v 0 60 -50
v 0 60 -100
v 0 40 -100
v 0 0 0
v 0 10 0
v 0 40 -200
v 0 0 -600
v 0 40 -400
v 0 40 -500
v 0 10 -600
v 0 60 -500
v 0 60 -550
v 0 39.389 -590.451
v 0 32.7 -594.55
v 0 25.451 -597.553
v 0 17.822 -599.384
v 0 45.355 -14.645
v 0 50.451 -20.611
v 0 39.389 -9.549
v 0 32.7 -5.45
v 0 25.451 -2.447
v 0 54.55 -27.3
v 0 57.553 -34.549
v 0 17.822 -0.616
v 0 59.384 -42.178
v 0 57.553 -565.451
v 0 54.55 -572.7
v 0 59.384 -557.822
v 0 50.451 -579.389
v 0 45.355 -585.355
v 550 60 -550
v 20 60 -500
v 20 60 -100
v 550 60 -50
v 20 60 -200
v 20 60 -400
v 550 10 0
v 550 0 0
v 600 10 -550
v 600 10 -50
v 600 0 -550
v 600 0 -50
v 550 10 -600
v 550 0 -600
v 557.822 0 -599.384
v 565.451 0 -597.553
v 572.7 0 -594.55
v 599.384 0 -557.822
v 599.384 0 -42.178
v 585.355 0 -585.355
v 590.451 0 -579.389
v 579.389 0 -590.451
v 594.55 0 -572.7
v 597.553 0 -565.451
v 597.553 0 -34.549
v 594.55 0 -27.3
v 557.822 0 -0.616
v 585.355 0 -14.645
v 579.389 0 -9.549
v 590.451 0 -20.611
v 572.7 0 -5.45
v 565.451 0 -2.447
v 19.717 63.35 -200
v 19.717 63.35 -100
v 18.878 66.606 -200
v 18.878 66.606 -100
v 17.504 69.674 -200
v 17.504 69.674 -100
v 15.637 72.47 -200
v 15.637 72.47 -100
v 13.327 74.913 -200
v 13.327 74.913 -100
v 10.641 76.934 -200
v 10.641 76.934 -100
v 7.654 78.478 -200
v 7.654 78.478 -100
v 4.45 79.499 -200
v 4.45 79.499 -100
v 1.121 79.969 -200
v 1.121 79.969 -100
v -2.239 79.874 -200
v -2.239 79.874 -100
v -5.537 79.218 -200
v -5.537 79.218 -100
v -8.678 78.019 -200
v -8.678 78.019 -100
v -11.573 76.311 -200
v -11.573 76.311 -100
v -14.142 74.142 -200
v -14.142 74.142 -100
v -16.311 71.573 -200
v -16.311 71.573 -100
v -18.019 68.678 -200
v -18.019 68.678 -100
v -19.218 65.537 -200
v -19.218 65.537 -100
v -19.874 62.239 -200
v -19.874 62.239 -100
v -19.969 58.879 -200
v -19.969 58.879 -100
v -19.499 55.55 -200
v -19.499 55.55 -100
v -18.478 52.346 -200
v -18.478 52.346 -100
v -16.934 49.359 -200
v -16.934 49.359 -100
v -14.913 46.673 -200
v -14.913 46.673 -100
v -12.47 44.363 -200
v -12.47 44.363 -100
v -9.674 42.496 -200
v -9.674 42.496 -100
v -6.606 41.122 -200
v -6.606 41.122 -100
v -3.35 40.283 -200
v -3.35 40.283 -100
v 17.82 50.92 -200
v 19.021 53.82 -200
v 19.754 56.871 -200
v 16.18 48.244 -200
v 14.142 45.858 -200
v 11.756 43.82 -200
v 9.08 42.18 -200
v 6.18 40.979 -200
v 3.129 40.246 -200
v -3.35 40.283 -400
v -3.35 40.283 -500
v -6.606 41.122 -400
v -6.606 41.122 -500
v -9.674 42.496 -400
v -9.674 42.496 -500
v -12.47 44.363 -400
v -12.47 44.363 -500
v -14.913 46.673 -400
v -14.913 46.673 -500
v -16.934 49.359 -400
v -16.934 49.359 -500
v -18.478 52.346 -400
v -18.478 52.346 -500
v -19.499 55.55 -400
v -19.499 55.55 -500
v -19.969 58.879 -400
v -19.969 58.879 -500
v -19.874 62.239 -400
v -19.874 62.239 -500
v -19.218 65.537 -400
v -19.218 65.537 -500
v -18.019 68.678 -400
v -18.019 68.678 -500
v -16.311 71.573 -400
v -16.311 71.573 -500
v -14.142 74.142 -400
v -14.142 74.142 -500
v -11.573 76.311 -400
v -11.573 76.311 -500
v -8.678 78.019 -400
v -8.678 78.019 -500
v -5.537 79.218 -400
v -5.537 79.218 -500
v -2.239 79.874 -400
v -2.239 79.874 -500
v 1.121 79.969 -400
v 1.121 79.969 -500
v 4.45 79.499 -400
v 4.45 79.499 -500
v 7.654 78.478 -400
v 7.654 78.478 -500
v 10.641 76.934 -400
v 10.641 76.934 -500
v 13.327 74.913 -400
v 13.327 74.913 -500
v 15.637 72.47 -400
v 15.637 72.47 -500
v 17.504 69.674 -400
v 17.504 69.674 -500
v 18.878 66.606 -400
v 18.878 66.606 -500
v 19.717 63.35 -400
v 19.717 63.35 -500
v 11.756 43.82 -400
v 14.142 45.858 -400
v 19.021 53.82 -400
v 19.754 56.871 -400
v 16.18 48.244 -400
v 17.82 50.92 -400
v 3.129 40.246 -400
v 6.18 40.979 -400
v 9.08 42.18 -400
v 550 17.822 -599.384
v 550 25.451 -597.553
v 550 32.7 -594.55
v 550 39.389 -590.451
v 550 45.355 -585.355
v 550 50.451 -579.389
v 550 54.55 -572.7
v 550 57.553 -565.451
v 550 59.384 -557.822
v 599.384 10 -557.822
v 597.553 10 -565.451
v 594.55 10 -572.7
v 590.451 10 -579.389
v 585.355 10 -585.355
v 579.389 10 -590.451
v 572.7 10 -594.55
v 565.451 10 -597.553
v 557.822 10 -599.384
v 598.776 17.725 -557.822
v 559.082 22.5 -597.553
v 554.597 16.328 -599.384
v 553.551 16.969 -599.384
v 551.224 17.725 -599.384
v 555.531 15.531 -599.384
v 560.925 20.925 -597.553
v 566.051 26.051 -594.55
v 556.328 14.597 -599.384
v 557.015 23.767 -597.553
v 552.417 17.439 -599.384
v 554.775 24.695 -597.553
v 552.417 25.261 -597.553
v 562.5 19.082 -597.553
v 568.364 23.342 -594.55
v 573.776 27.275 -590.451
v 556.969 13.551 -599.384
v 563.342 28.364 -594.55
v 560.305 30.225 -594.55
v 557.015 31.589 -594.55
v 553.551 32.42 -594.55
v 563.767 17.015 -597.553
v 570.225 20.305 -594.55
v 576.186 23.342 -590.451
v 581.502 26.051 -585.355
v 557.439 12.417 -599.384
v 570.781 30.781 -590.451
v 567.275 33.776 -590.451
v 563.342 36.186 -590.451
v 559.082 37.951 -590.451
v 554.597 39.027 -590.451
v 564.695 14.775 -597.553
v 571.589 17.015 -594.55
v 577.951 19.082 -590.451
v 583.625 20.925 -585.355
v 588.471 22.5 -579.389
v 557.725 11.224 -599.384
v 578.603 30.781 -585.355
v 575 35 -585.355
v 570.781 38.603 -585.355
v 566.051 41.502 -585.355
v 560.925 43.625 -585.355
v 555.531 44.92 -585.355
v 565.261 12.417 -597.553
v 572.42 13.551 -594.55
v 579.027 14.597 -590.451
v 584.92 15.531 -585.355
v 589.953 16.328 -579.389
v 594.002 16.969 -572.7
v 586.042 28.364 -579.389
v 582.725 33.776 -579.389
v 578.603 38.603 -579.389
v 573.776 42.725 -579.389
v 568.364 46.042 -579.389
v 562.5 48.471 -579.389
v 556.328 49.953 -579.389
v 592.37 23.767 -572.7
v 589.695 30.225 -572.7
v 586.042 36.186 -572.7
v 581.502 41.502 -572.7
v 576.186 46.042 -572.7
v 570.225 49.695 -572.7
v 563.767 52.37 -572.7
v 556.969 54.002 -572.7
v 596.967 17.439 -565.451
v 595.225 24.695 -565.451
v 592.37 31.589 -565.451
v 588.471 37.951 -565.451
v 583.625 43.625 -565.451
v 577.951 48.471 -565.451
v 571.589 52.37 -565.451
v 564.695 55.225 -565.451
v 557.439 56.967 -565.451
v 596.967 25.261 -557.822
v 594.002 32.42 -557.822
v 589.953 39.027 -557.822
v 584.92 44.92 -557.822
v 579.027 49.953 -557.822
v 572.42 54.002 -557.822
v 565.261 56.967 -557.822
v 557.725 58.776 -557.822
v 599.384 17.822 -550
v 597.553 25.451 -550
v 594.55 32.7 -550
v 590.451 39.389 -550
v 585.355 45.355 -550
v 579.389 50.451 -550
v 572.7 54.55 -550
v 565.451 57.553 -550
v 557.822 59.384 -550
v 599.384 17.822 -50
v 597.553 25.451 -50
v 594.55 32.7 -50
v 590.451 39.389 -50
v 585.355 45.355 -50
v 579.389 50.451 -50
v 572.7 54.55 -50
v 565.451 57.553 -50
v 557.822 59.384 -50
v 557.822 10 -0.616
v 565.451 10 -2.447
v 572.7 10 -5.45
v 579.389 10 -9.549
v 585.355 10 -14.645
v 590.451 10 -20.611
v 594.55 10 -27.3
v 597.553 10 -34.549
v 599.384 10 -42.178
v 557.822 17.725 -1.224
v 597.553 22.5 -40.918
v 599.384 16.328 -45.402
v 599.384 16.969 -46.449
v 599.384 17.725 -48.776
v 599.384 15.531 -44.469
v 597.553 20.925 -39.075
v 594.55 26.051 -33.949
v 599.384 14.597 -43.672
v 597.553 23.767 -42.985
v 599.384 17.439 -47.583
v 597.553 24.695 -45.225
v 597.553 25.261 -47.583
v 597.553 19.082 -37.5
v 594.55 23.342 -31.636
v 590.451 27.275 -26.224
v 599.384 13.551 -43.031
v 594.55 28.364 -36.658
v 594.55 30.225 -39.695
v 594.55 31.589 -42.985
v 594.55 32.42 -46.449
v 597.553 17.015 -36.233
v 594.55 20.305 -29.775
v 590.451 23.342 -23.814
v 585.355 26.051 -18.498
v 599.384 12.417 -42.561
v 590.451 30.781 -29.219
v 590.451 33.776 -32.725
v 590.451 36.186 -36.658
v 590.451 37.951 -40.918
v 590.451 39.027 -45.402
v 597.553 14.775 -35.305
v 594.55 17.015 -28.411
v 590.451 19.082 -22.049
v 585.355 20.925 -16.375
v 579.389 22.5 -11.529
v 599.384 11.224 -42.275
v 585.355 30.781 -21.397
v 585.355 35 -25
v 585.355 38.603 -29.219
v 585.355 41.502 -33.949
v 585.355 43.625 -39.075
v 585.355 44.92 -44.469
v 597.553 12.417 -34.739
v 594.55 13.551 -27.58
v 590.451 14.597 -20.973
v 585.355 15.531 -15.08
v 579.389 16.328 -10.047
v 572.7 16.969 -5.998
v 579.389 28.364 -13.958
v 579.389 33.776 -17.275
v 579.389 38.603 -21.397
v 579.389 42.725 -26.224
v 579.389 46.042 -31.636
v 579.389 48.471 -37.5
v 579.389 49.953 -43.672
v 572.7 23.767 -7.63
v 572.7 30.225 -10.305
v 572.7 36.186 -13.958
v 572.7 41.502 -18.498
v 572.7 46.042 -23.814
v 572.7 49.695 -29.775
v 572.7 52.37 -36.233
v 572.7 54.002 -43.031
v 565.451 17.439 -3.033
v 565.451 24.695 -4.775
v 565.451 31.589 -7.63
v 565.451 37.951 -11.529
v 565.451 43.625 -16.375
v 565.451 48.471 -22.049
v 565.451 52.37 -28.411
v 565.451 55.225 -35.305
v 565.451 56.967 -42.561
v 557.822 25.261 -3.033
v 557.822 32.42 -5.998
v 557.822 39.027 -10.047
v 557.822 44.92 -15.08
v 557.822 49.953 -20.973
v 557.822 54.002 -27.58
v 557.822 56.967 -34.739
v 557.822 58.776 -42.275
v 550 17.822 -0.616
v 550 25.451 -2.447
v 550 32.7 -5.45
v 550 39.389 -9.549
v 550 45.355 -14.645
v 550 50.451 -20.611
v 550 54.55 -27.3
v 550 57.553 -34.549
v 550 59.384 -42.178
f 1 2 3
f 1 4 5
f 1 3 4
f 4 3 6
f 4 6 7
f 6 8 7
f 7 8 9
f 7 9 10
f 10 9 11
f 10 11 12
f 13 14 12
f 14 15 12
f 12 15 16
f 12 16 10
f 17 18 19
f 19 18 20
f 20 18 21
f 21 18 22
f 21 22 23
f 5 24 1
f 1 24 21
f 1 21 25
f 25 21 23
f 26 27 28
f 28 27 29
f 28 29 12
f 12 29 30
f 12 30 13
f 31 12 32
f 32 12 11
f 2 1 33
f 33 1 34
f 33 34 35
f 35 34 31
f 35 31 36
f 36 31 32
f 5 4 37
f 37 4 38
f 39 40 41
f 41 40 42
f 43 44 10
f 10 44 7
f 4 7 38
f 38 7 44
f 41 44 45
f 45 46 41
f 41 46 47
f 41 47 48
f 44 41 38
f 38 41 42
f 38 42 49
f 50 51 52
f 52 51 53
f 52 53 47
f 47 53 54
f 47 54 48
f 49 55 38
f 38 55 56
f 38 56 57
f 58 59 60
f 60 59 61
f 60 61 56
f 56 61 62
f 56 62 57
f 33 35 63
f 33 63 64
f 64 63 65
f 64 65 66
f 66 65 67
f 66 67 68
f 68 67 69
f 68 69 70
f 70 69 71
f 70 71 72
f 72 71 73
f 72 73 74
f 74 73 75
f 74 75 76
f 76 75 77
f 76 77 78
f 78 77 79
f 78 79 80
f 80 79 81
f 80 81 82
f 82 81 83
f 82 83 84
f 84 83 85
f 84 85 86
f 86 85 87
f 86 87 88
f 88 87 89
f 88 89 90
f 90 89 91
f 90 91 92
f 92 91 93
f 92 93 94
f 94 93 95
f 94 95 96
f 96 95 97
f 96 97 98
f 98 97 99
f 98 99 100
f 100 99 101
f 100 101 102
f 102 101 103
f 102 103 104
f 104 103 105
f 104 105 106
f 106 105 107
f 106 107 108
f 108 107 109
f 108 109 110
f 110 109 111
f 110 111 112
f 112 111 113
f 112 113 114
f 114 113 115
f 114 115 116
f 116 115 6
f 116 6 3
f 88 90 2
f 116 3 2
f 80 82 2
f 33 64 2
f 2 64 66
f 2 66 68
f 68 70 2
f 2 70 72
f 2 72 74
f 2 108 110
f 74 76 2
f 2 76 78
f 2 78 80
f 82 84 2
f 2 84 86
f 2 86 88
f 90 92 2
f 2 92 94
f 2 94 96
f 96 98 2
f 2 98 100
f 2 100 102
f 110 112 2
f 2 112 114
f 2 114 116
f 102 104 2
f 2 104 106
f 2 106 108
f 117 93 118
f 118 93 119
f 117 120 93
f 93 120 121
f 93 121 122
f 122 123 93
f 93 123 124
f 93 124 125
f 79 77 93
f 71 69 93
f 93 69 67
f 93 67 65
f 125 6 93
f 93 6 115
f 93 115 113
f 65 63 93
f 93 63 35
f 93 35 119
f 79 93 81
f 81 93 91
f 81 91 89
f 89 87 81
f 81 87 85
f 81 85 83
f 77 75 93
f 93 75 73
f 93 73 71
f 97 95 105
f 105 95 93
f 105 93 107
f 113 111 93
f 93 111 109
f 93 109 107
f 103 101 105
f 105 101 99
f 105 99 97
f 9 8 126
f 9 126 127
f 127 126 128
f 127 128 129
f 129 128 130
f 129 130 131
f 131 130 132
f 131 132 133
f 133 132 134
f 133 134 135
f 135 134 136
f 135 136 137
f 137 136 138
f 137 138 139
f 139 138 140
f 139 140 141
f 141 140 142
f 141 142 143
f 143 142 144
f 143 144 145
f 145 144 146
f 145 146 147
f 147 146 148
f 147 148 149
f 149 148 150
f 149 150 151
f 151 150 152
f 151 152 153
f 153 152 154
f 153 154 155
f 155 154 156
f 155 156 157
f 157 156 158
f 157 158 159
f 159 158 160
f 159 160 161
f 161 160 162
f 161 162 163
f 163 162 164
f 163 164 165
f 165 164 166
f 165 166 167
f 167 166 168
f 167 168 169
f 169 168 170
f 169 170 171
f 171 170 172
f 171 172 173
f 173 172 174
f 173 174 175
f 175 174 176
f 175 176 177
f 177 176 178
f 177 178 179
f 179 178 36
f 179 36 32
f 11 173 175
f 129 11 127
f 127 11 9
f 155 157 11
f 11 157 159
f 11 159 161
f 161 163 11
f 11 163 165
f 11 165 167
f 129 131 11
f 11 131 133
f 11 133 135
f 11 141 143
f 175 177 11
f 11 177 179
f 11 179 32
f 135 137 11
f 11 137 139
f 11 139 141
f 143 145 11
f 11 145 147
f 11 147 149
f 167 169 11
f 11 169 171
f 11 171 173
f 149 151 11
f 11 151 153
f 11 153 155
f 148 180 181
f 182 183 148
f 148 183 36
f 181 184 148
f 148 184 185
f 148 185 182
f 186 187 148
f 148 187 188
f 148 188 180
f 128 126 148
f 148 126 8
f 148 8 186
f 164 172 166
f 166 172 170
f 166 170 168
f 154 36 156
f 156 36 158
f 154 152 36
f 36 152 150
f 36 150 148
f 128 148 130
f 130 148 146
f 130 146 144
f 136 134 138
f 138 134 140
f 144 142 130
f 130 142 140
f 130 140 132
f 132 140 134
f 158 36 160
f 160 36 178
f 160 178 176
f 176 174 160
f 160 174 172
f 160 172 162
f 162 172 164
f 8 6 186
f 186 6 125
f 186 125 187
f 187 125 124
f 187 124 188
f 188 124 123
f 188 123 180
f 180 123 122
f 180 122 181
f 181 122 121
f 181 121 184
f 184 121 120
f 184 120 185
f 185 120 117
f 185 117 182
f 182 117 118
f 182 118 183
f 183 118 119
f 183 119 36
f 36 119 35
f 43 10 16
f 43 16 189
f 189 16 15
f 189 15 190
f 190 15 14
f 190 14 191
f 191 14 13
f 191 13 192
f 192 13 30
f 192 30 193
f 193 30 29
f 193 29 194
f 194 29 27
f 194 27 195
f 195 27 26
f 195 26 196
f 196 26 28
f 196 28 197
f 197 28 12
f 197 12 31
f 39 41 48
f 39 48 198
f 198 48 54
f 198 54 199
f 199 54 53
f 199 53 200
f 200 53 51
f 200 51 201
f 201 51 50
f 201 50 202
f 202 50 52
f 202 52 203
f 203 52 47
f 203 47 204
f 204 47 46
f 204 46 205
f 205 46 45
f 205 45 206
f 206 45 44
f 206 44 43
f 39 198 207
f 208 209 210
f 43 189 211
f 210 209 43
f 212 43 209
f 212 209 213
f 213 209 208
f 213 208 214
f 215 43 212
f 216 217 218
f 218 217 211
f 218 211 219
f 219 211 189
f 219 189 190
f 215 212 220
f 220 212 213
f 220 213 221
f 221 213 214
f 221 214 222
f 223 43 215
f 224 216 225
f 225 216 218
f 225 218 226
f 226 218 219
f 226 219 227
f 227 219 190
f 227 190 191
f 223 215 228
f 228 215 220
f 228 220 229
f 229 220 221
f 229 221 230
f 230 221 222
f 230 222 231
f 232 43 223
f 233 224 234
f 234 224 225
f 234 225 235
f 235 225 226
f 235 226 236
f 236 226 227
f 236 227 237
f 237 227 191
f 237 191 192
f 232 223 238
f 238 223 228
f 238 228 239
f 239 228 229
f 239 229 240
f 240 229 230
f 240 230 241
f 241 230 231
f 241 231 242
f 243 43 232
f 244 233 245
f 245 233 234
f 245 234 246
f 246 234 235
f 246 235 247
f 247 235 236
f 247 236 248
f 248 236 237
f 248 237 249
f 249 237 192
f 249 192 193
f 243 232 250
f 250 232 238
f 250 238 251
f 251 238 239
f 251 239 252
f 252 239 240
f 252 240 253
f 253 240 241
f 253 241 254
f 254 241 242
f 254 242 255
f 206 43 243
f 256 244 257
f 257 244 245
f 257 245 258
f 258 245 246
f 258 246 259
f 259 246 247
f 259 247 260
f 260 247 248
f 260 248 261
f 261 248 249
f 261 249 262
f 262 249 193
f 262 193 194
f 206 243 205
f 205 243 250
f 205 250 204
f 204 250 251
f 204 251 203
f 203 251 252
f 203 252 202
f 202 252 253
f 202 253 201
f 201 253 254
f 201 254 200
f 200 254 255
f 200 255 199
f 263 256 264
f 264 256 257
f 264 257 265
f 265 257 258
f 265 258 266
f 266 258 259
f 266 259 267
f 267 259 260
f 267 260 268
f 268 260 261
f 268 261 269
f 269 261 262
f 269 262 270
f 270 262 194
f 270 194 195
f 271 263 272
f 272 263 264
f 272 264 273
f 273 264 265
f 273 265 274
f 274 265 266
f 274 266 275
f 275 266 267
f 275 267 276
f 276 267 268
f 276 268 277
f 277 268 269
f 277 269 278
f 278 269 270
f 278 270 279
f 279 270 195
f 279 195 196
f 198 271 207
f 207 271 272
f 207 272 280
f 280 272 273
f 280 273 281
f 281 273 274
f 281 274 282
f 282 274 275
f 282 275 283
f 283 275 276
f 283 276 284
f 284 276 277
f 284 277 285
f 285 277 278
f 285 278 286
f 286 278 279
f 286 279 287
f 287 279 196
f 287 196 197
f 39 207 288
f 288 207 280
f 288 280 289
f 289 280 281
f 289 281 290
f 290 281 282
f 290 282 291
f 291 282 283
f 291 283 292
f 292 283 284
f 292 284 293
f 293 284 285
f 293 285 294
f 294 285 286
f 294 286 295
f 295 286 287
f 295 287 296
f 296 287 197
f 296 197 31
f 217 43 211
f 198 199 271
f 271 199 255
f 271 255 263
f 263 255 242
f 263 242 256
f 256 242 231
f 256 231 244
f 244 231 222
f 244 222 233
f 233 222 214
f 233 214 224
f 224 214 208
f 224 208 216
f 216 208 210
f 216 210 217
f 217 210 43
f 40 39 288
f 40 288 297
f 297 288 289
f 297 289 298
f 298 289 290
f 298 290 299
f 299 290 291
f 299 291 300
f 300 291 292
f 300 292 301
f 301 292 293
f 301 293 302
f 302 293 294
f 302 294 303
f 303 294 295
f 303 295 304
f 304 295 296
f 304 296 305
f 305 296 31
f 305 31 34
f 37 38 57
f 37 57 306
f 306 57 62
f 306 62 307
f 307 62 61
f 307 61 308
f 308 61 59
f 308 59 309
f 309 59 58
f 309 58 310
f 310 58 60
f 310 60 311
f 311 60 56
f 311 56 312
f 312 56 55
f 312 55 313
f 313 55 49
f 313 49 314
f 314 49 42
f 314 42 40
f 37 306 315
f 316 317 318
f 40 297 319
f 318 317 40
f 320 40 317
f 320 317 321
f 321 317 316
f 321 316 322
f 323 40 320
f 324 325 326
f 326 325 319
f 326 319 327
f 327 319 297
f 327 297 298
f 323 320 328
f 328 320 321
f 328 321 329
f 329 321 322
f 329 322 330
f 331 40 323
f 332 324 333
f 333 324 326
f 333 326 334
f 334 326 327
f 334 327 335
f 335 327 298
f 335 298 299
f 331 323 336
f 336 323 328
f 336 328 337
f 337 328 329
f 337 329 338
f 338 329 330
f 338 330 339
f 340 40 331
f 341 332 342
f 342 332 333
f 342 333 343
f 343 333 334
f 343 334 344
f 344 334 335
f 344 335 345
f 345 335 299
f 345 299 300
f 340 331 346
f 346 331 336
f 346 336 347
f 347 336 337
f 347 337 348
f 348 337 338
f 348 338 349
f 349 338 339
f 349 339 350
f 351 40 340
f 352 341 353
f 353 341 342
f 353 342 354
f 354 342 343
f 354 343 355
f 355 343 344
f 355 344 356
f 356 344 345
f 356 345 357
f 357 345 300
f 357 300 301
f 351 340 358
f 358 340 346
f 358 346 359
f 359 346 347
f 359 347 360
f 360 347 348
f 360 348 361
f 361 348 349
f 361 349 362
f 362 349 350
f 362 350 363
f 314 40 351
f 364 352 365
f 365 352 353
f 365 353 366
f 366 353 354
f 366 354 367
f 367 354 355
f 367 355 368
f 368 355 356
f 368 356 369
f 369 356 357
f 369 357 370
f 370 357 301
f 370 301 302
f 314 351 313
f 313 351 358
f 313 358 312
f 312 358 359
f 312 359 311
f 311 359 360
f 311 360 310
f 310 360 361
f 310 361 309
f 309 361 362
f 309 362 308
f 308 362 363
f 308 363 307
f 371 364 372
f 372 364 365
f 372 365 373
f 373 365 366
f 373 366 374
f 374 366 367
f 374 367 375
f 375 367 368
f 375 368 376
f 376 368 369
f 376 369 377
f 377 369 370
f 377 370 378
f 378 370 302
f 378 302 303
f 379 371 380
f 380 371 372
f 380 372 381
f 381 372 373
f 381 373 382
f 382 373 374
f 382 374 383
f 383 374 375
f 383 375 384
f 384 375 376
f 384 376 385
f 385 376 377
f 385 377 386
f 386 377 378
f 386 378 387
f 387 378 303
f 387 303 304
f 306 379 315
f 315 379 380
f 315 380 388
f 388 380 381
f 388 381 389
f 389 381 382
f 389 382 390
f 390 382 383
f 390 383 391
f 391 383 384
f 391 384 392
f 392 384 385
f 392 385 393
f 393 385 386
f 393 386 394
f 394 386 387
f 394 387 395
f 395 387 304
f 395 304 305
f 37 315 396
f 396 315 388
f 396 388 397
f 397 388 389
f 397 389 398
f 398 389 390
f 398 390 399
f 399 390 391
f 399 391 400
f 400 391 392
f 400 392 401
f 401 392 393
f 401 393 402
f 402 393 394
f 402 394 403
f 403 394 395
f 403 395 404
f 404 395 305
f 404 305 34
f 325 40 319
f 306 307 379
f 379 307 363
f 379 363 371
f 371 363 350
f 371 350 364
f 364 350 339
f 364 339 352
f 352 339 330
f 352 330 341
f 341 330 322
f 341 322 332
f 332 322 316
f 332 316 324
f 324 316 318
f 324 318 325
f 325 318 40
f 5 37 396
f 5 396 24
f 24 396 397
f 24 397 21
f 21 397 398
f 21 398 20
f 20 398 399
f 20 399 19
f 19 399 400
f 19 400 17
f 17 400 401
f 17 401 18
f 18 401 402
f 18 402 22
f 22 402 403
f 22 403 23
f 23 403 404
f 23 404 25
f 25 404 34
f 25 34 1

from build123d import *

# Parameters (mm, degrees)
SKETCH1_W                      = 600
SKETCH1_H                      = 600
BOSS_EXTRUDE1_DEPTH            = 60
BOSS_EXTRUDE2_START            = 100
SKETCH2_R                      = 20
BOSS_EXTRUDE2_DEPTH            = 100
BOSS_EXTRUDE3_START            = -200
SKETCH2_2_R                    = 20
BOSS_EXTRUDE3_DEPTH            = 100
CUT_EXTRUDE1_REACH             = 677.574
SKETCH2_3_R                    = 20
CUT_EXTRUDE1_DIRECTION_2_REACH = 677.574
FILLET1_R                      = 50


with BuildPart() as part:
    # Sketch1 → Boss-Extrude1 (new body)
    with BuildSketch(Plane(origin=(0, 0, 0), x_dir=(1, 0, 0), z_dir=(0, 1, 0))):
        with Locations((300, 300)):
            Rectangle(SKETCH1_W, SKETCH1_H)
    extrude(amount=BOSS_EXTRUDE1_DEPTH)

    # Sketch2 → Boss-Extrude2 (add)
    with BuildSketch(Plane.XY.offset(-300).offset(BOSS_EXTRUDE2_START)):
        with Locations((0, 60)):
            Circle(SKETCH2_R)
    extrude(amount=BOSS_EXTRUDE2_DEPTH)

    # Sketch2<2> → Boss-Extrude3 (add)
    with BuildSketch(Plane.XY.offset(-300).offset(BOSS_EXTRUDE3_START)):
        with Locations((0, 60)):
            Circle(SKETCH2_2_R)
    extrude(amount=BOSS_EXTRUDE3_DEPTH)

    # Cut-Extrude1: up to this face of the body (flat: up to its plane)
    cut_extrude1_end = Plane(part.part.faces().sort_by_distance((-2.829421211, 62.829421211, -400))[0])
    # Sketch2<3> → Cut-Extrude1 (cut, up to the picked face)
    with BuildSketch(Plane.XY.offset(-300), mode=Mode.PRIVATE) as cut_extrude1_sk1:
        with Locations((0, 60)):
            Circle(SKETCH2_3_R)
    cut_extrude1_tool1 = split(extrude(cut_extrude1_sk1.sketch, amount=-CUT_EXTRUDE1_REACH, mode=Mode.PRIVATE), bisect_by=cut_extrude1_end, keep=Keep.BOTH, mode=Mode.PRIVATE)
    add(cut_extrude1_tool1.solids().sort_by(Axis((0, 60, -300), (0, 0, -1)))[0], mode=Mode.SUBTRACT)

    # Cut-Extrude1 direction 2: up to this face of the body (flat: up to its plane)
    cut_extrude1_direction_2_end = Plane(part.part.faces().sort_by_distance((-2.829421211, 62.829421211, -200))[0])
    # Sketch2<3> → Cut-Extrude1 direction 2 (cut, up to the picked face)
    with BuildSketch(Plane.XY.offset(-300), mode=Mode.PRIVATE) as cut_extrude1_direction_2_sk1:
        with Locations((0, 60)):
            Circle(SKETCH2_3_R)
    cut_extrude1_direction_2_tool1 = split(extrude(cut_extrude1_direction_2_sk1.sketch, amount=CUT_EXTRUDE1_DIRECTION_2_REACH, mode=Mode.PRIVATE), bisect_by=cut_extrude1_direction_2_end, keep=Keep.BOTH, mode=Mode.PRIVATE)
    add(cut_extrude1_direction_2_tool1.solids().sort_by(Axis((0, 60, -300), (0, 0, 1)))[0], mode=Mode.SUBTRACT)

    # Fillet1
    fillet1_edges = [part.edges().sort_by_distance(p)[0] for p in [
        (600, 60, -300),
        (300, 60, -600),
        (600, 30, -600),
        (600, 30, 0),
        (300, 60, 0),
    ]]
    fillet(fillet1_edges, radius=FILLET1_R)


solid = part.part
